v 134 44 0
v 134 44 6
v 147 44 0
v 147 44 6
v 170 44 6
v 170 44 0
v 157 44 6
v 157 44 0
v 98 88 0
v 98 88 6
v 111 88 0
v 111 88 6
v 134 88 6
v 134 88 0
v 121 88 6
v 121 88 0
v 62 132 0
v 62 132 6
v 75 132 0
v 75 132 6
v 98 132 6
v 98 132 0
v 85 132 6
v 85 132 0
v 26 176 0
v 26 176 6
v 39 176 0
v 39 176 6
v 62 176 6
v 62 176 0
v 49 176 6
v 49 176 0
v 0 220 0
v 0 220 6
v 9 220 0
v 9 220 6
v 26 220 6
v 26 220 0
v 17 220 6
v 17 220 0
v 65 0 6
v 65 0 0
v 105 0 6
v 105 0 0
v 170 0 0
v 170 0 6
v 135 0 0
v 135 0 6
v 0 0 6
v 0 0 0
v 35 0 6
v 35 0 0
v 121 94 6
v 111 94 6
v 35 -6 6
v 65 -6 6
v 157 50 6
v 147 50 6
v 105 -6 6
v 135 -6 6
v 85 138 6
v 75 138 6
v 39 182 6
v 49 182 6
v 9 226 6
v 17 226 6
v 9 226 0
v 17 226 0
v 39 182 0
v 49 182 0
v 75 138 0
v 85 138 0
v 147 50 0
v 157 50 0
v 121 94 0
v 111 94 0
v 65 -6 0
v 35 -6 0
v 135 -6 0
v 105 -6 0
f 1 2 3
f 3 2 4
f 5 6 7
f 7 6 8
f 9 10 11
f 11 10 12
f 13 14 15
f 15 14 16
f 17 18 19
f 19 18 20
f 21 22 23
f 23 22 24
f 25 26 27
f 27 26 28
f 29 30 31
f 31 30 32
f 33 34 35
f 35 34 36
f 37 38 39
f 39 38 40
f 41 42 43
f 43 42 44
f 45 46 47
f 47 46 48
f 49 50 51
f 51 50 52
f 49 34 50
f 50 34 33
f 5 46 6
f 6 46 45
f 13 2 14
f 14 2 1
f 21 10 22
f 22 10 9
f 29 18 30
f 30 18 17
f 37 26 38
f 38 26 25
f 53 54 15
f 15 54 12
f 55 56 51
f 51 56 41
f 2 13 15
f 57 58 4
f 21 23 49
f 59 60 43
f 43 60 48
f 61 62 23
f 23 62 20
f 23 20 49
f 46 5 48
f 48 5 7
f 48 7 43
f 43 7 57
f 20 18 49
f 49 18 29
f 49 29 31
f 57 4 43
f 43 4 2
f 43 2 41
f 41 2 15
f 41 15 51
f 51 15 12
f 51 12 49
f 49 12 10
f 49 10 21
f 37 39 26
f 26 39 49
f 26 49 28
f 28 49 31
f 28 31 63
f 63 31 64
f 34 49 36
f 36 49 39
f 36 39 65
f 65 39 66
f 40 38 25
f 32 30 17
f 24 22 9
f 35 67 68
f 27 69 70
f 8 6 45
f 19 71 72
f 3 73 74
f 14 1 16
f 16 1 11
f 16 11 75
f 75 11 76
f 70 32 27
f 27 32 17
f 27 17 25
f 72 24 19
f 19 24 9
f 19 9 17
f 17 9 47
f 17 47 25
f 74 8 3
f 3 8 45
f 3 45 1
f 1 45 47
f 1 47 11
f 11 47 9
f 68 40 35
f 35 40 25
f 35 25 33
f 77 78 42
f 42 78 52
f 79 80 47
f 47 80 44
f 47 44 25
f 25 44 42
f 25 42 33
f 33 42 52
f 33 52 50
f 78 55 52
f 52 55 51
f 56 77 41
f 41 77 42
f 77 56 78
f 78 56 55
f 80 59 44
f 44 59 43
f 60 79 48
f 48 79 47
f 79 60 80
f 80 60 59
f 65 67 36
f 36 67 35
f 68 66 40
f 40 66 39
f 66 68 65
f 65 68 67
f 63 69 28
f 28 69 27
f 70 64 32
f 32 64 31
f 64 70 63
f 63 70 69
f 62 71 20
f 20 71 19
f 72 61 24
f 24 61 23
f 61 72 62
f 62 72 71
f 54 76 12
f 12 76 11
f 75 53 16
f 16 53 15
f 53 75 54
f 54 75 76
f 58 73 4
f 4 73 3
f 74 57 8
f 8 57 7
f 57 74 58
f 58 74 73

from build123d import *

# Parameters (mm, degrees)
BOSS_EXTRU_1_DEPTH = 6
ESQUISSE2_W        = 30
ESQUISSE2_H        = 6
BOSS_EXTRU_2_DEPTH = 6
ESQUISSE3_W        = 8
ESQUISSE3_H        = 6
BOSS_EXTRU_3_DEPTH = 6
ESQUISSE4_W        = 10
ESQUISSE4_H        = 6
BOSS_EXTRU_4_DEPTH = 6
ESQUISSE5_W        = 10
ESQUISSE5_H        = 6
BOSS_EXTRU_5_DEPTH = 6
ESQUISSE6_W        = 10
ESQUISSE6_H        = 6
BOSS_EXTRU_6_DEPTH = 6
ESQUISSE7_W        = 10
ESQUISSE7_H        = 6
BOSS_EXTRU_7_DEPTH = 6


with BuildPart() as part:
    # Esquisse1 → Boss.-Extru.1 (new body)
    with BuildSketch(Plane.XY):
        Polygon((0, 220), (26, 220), (26, 176), (62, 176), (62, 132), (98, 132), (98, 88), (134, 88), (134, 44), (170, 44), (170, 0), (0, 0), align=None)
    extrude(amount=BOSS_EXTRU_1_DEPTH)

    # Esquisse2 → Boss.-Extru.2 (add)
    with BuildSketch(Plane.XZ):
        with Locations((50, 3)):
            Rectangle(ESQUISSE2_W, ESQUISSE2_H)
        with Locations((120, 3)):
            Rectangle(ESQUISSE2_W, ESQUISSE2_H)
    extrude(amount=BOSS_EXTRU_2_DEPTH)

    # Esquisse3 → Boss.-Extru.3 (add)
    with BuildSketch(Plane(origin=(0, 220, 0), x_dir=(1, 0, 0), z_dir=(0, 1, 0))):
        with Locations((13, -3)):
            Rectangle(ESQUISSE3_W, ESQUISSE3_H)
    extrude(amount=BOSS_EXTRU_3_DEPTH)

    # Esquisse4 → Boss.-Extru.4 (add)
    with BuildSketch(Plane(origin=(0, 176, 0), x_dir=(1, 0, 0), z_dir=(0, 1, 0))):
        with Locations((44, -3)):
            Rectangle(ESQUISSE4_W, ESQUISSE4_H)
    extrude(amount=BOSS_EXTRU_4_DEPTH)

    # Esquisse5 → Boss.-Extru.5 (add)
    with BuildSketch(Plane(origin=(0, 132, 0), x_dir=(1, 0, 0), z_dir=(0, 1, 0))):
        with Locations((80, -3)):
            Rectangle(ESQUISSE5_W, ESQUISSE5_H)
    extrude(amount=BOSS_EXTRU_5_DEPTH)

    # Esquisse6 → Boss.-Extru.6 (add)
    with BuildSketch(Plane(origin=(0, 88, 0), x_dir=(1, 0, 0), z_dir=(0, 1, 0))):
        with Locations((116, -3)):
            Rectangle(ESQUISSE6_W, ESQUISSE6_H)
    extrude(amount=BOSS_EXTRU_6_DEPTH)

    # Esquisse7 → Boss.-Extru.7 (add)
    with BuildSketch(Plane(origin=(0, 44, 0), x_dir=(1, 0, 0), z_dir=(0, 1, 0))):
        with Locations((152, -3)):
            Rectangle(ESQUISSE7_W, ESQUISSE7_H)
    extrude(amount=BOSS_EXTRU_7_DEPTH)


solid = part.part
